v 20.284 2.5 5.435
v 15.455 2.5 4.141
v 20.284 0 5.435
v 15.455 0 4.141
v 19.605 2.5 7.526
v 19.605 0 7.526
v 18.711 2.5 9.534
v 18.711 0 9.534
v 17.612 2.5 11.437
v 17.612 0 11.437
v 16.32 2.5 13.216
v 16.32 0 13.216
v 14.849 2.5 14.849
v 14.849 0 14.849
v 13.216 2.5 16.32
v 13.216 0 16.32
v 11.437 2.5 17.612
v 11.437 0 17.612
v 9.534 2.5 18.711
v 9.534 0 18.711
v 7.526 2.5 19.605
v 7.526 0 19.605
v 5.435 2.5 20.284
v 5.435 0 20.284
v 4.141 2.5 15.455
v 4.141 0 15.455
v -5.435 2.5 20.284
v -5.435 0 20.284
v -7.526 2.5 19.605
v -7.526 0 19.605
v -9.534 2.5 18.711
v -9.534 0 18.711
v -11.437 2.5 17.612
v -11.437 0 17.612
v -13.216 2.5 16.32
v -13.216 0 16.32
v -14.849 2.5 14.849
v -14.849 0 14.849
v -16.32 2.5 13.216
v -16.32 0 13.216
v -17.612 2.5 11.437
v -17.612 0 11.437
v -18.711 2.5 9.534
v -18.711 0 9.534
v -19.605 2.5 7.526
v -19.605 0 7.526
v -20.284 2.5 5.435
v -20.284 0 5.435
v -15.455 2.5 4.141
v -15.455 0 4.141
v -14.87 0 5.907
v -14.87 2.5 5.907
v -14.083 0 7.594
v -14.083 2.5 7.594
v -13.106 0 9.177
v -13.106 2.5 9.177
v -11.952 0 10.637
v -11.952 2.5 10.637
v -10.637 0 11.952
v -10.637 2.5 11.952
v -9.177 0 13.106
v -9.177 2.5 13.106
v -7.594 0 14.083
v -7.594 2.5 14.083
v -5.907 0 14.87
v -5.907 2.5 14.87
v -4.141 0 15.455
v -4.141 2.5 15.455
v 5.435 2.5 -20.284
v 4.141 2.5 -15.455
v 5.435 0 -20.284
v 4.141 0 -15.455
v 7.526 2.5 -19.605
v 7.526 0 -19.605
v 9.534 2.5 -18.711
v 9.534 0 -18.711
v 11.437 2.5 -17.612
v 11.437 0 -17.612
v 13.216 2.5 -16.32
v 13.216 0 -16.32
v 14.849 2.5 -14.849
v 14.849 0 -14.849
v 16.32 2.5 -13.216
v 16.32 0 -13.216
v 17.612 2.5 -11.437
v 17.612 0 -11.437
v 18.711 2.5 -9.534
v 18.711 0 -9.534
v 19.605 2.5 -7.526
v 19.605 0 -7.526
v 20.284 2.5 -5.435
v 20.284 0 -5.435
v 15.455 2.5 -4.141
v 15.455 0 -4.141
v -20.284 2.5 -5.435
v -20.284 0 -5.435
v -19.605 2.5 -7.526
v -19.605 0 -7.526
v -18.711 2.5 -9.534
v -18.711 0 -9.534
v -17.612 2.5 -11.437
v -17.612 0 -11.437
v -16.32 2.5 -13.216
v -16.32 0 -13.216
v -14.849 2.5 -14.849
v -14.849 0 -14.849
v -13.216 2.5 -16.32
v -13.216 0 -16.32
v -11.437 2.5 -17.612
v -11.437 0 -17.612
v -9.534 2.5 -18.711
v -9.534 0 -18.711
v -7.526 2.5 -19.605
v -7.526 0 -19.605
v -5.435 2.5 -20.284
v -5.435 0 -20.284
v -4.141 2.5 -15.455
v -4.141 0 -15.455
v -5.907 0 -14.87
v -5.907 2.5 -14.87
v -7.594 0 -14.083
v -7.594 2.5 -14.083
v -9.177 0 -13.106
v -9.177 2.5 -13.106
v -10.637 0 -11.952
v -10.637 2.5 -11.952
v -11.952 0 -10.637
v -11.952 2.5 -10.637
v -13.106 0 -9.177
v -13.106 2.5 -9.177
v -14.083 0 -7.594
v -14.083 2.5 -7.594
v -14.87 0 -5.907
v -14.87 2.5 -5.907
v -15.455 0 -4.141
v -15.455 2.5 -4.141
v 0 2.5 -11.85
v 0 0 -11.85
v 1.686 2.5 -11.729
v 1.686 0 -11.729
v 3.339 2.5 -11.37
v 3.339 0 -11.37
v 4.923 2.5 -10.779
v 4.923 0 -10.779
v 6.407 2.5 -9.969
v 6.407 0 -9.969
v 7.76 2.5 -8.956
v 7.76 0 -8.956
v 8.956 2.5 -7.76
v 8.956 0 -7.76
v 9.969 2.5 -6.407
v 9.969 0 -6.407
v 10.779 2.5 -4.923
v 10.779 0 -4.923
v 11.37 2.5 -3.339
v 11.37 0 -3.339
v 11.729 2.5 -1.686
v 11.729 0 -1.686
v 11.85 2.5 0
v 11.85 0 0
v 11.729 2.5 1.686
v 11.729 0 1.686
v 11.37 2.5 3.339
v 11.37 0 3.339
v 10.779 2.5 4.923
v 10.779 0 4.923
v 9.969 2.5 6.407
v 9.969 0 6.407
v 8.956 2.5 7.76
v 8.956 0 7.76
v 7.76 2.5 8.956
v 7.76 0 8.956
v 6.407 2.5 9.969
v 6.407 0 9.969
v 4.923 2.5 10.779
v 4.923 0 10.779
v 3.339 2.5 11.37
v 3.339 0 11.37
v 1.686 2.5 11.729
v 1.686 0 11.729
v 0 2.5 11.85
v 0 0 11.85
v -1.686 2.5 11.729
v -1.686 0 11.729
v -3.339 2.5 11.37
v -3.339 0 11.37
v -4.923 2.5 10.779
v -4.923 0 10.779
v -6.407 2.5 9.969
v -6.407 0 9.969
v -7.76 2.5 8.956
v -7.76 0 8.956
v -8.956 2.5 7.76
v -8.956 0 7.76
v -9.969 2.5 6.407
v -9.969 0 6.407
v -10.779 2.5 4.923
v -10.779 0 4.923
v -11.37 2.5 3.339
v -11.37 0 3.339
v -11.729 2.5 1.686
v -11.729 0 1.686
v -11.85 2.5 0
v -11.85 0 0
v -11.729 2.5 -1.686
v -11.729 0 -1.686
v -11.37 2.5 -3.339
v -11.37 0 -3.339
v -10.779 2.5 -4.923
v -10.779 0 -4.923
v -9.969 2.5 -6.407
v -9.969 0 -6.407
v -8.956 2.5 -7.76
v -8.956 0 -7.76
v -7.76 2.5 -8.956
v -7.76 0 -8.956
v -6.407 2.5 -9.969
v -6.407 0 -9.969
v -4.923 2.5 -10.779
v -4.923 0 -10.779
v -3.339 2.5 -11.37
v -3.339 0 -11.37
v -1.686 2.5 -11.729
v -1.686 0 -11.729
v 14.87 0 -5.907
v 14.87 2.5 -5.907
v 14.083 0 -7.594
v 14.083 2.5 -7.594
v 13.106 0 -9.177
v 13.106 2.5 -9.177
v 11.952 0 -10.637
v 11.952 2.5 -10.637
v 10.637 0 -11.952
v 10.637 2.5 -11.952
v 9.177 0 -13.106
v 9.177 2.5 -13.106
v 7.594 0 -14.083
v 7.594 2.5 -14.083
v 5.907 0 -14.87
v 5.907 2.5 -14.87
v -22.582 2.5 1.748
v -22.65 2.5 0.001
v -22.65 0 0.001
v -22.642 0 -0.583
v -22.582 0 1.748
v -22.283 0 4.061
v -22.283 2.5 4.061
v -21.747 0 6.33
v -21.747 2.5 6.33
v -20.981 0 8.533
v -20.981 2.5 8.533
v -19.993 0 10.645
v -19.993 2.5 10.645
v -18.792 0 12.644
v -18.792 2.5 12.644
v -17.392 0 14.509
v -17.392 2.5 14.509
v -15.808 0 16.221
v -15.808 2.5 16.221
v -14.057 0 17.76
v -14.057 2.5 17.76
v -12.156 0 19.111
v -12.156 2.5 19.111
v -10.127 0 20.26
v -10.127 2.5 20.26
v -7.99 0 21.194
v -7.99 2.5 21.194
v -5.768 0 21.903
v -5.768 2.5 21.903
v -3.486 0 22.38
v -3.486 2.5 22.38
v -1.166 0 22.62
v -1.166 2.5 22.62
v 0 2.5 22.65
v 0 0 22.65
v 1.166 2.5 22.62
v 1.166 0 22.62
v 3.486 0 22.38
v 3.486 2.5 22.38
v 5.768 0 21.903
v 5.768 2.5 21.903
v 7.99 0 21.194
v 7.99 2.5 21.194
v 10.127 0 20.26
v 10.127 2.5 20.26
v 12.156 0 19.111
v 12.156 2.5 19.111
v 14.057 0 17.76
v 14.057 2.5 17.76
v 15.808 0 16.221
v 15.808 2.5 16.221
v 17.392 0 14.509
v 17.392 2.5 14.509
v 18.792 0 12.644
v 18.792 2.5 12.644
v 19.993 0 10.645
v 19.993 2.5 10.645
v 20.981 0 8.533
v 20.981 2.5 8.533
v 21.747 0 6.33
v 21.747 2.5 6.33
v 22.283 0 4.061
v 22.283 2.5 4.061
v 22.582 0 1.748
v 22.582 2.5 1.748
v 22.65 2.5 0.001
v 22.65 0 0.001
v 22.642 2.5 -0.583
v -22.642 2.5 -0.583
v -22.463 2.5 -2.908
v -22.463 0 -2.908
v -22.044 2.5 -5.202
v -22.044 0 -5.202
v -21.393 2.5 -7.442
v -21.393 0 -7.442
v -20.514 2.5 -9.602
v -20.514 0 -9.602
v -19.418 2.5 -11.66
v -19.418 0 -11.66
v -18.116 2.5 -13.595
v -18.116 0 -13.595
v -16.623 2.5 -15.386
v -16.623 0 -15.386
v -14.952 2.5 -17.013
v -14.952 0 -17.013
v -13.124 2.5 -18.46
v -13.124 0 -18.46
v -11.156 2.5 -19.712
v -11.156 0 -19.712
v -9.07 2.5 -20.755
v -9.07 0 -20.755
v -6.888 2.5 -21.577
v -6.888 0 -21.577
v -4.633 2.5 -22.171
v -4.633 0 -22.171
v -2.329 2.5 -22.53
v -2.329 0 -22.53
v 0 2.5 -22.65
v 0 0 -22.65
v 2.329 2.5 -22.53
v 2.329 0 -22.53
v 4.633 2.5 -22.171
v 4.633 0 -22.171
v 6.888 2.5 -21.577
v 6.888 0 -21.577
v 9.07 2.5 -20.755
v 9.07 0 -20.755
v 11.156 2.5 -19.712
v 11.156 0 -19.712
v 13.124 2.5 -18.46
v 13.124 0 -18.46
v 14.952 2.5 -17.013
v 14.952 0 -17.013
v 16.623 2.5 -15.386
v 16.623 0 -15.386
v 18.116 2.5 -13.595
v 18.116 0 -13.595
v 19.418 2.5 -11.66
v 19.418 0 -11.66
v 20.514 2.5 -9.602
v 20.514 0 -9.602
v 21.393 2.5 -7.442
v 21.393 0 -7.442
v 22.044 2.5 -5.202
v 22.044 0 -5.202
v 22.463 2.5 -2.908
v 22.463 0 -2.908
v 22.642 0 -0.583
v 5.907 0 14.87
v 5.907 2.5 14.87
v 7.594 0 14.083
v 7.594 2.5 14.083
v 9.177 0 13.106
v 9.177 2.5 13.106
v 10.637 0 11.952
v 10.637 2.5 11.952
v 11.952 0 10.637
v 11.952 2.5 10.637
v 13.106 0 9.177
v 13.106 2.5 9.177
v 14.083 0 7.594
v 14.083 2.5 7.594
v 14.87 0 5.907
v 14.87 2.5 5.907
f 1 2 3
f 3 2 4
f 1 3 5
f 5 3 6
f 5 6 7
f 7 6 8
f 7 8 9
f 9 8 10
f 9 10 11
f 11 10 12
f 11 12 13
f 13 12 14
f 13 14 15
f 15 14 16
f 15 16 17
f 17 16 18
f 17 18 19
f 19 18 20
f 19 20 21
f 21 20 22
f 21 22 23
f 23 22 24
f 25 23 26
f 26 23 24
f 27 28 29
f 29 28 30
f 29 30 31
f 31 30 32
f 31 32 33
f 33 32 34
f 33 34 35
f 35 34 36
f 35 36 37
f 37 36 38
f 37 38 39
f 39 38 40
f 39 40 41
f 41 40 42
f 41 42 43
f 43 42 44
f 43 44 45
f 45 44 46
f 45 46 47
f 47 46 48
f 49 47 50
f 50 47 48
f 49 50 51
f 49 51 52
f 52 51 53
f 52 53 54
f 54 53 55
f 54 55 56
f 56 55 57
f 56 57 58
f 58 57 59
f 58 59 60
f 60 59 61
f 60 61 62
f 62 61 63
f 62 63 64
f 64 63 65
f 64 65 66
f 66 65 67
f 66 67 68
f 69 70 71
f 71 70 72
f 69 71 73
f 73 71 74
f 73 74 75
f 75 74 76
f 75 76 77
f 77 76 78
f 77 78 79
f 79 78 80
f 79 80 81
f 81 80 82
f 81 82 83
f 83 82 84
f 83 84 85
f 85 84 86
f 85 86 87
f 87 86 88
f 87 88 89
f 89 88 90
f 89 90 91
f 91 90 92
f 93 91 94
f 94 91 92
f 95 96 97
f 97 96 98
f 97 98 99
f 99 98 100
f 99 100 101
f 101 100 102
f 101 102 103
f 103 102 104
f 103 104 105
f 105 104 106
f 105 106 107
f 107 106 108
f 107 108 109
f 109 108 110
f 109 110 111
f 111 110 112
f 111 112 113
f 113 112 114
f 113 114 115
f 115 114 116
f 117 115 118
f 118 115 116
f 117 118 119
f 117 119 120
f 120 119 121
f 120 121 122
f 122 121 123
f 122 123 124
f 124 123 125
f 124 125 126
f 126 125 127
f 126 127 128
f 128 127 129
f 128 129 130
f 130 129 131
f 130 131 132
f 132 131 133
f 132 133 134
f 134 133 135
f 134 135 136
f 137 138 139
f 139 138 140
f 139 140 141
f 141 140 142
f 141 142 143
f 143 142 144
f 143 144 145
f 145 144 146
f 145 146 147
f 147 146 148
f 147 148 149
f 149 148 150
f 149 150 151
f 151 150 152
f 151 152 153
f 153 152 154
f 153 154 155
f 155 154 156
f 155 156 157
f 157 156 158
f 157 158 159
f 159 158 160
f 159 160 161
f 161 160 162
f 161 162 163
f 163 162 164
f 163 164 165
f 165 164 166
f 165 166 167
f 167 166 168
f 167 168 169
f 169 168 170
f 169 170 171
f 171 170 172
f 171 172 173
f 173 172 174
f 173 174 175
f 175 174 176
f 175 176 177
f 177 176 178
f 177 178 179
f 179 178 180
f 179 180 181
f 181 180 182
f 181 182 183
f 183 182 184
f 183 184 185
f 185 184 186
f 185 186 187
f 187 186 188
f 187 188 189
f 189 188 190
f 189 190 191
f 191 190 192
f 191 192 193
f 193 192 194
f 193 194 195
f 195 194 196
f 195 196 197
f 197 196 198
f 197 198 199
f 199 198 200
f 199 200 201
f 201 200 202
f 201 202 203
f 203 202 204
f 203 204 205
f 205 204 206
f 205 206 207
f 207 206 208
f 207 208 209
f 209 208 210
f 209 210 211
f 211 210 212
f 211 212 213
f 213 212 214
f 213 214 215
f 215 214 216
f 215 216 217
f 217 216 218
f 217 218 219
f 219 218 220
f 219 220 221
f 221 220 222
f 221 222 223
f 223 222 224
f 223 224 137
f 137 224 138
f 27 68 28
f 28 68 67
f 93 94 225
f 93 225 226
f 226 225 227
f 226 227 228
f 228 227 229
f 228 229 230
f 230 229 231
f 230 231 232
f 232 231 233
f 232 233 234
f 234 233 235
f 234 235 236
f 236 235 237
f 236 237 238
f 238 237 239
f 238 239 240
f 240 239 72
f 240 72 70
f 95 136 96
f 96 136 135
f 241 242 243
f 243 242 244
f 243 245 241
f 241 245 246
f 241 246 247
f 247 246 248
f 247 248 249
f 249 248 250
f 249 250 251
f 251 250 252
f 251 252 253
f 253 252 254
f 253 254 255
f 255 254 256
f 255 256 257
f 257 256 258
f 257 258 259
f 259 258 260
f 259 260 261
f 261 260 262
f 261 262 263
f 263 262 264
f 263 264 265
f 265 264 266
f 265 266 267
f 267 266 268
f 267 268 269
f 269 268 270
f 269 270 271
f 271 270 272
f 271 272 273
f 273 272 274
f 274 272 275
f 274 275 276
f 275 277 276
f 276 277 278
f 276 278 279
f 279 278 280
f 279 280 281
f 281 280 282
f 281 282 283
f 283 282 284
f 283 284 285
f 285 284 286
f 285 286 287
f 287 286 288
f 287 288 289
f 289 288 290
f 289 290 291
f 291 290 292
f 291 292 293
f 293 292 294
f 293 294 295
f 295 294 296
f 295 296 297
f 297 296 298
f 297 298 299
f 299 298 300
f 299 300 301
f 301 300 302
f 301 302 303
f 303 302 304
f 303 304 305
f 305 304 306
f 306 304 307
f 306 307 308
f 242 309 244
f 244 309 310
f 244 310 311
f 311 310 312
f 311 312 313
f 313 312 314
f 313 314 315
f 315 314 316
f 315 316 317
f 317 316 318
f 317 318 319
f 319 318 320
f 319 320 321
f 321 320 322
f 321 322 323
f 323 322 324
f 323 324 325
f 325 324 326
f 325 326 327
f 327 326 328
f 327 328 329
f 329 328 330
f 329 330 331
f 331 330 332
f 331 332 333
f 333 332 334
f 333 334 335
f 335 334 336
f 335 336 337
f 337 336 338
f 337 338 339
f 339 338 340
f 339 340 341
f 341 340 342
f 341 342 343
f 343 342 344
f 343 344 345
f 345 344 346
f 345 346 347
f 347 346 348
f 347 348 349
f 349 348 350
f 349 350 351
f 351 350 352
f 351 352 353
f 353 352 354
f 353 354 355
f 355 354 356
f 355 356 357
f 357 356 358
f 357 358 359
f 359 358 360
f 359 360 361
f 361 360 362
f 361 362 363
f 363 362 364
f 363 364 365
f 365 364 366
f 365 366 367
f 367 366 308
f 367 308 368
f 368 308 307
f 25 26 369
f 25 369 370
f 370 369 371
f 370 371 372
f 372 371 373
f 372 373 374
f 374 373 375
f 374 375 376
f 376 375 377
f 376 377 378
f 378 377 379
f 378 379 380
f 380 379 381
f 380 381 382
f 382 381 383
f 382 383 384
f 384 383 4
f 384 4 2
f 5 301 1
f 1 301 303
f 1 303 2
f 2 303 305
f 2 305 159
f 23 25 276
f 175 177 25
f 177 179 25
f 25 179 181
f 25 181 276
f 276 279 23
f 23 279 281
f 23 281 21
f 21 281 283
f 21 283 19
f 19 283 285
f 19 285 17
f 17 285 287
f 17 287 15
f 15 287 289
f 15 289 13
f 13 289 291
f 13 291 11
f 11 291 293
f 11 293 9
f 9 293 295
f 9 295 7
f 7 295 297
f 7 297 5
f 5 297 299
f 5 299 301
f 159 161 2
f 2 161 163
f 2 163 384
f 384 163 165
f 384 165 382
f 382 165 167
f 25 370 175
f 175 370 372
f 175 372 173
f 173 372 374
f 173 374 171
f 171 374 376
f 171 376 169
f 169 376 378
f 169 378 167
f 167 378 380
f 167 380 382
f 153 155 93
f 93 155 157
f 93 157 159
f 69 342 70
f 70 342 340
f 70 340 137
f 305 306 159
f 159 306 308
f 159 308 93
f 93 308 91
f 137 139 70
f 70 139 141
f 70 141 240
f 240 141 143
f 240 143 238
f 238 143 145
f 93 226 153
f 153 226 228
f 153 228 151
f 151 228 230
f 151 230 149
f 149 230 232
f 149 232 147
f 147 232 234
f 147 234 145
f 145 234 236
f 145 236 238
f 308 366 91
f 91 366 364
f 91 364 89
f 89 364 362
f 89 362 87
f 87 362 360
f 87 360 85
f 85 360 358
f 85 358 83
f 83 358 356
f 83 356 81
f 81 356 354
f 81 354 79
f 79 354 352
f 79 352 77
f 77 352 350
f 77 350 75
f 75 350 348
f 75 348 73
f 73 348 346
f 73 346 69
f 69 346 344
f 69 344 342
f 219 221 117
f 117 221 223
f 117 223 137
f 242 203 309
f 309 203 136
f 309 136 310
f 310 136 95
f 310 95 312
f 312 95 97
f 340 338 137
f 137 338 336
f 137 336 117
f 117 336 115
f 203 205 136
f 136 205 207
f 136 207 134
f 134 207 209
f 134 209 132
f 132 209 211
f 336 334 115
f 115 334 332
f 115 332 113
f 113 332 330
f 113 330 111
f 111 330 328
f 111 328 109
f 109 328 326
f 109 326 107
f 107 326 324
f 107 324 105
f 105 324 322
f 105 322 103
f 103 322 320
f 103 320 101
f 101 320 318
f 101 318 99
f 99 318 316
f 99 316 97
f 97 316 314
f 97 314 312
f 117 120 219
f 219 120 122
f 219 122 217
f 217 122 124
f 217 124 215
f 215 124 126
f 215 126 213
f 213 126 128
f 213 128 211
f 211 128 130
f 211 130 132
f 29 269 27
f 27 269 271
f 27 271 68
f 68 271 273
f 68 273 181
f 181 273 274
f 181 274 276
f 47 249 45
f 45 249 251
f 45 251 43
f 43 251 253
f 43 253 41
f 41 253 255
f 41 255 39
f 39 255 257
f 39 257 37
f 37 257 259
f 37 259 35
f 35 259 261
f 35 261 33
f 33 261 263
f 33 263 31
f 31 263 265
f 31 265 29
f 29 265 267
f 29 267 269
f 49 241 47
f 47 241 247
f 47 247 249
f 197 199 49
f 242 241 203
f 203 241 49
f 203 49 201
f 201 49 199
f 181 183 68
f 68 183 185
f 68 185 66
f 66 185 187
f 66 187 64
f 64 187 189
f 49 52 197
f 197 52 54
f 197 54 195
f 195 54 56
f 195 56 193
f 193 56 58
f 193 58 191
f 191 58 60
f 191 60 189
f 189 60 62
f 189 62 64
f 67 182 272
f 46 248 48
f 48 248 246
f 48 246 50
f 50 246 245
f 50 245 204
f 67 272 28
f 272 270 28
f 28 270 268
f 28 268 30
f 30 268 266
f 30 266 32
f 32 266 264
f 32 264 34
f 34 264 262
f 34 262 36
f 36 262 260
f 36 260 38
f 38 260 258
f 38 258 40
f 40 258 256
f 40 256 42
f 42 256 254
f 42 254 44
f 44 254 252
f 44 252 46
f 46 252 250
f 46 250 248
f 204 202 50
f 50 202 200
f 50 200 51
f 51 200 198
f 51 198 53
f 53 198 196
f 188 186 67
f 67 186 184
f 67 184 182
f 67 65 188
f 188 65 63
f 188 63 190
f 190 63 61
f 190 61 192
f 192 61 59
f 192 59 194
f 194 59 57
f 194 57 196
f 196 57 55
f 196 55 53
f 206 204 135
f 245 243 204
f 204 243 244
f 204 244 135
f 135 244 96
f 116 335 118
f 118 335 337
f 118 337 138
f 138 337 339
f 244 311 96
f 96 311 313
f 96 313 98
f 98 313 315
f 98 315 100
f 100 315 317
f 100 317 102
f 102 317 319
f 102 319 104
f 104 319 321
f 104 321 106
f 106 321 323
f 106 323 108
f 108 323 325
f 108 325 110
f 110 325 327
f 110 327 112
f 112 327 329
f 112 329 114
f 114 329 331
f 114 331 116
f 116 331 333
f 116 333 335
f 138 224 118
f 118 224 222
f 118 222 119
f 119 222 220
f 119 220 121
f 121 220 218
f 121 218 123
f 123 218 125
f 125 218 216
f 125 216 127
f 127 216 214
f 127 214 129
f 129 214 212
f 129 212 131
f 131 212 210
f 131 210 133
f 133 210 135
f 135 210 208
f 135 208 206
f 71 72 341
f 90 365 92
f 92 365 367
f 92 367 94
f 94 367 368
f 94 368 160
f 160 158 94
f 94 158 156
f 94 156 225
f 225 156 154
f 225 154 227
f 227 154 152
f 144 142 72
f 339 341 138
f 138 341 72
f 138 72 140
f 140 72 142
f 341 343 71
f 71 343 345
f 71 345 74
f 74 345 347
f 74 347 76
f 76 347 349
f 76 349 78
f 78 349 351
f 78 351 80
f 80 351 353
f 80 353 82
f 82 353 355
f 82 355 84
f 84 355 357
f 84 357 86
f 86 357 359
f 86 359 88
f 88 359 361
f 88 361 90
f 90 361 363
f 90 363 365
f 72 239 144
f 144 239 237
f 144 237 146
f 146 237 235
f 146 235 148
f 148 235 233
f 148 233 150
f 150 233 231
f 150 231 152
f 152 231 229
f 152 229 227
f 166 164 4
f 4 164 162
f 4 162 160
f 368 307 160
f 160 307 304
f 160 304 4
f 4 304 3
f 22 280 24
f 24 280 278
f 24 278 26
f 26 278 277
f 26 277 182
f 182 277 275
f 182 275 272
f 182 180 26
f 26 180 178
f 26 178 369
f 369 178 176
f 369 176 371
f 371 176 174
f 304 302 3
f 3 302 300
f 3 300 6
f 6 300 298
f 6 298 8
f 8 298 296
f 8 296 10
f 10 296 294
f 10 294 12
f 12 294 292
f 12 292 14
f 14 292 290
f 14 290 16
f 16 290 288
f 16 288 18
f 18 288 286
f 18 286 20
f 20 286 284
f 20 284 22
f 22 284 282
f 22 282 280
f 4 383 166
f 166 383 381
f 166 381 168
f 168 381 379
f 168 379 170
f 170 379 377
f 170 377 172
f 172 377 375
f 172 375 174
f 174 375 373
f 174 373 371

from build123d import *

# Parameters (mm, degrees)
BOSS_EXTRUDE2_DEPTH = 2.5


with BuildPart() as part:
    # Sketch1 → Boss-Extrude2 (new body)
    with BuildSketch(Plane(origin=(0, 0, 0), x_dir=(1, 0, 0), z_dir=(0, 1, 0))):
        with BuildLine():
            ThreePointArc((-20.284442352, 5.435199947), (-14.849242405, 14.849242405), (-5.435199947, 20.284442352))
            Line((-5.435199947, 20.284442352), (-5.862251372, 21.878219965))
            ThreePointArc((-5.862251372, 21.878219965), (-16.015968594, 16.015968594), (-21.878219965, 5.862251372))
            Line((-21.878219965, 5.862251372), (-20.284442352, 5.435199947))
        make_face()
        with BuildLine():
            ThreePointArc((-20.284442352, -5.435199947), (-21, 0), (-20.284442352, 5.435199947))
            Line((-20.284442352, 5.435199947), (-21.878219965, 5.862251372))
            ThreePointArc((-21.878219965, 5.862251372), (-22.65, 0), (-21.878219965, -5.862251372))
            Line((-21.878219965, -5.862251372), (-20.284442352, -5.435199947))
        make_face()
        with BuildLine():
            Line((-5.862251372, -21.878219965), (-5.435199947, -20.284442352))
            ThreePointArc((-5.435199947, -20.284442352), (-14.849242405, -14.849242405), (-20.284442352, -5.435199947))
            Line((-20.284442352, -5.435199947), (-21.878219965, -5.862251372))
            ThreePointArc((-21.878219965, -5.862251372), (-16.015968594, -16.015968594), (-5.862251372, -21.878219965))
        make_face()
        with BuildLine():
            ThreePointArc((5.435199947, -20.284442352), (0, -21), (-5.435199947, -20.284442352))
            Line((-5.435199947, -20.284442352), (-5.862251372, -21.878219965))
            ThreePointArc((-5.862251372, -21.878219965), (0, -22.65), (5.862251372, -21.878219965))
            Line((5.862251372, -21.878219965), (5.435199947, -20.284442352))
        make_face()
        with BuildLine():
            Line((21.878219965, -5.862251372), (20.284442352, -5.435199947))
            ThreePointArc((20.284442352, -5.435199947), (14.849242405, -14.849242405), (5.435199947, -20.284442352))
            Line((5.435199947, -20.284442352), (5.862251372, -21.878219965))
            ThreePointArc((5.862251372, -21.878219965), (16.015968594, -16.015968594), (21.878219965, -5.862251372))
        make_face()
        with BuildLine():
            ThreePointArc((21, 0), (20.820342089, -2.741050037), (20.284442352, -5.435199947))
            Line((20.284442352, -5.435199947), (21.878219965, -5.862251372))
            ThreePointArc((21.878219965, -5.862251372), (22.45622611, -2.956418254), (22.65, 0))
            ThreePointArc((22.65, 0), (22.45622611, 2.956418254), (21.878219965, 5.862251372))
            Line((21.878219965, 5.862251372), (20.284442352, 5.435199947))
            ThreePointArc((20.284442352, 5.435199947), (20.820342089, 2.741050037), (21, 0))
        make_face()
        with BuildLine():
            Line((5.862251372, 21.878219965), (5.435199947, 20.284442352))
            ThreePointArc((5.435199947, 20.284442352), (14.849242405, 14.849242405), (20.284442352, 5.435199947))
            Line((20.284442352, 5.435199947), (21.878219965, 5.862251372))
            ThreePointArc((21.878219965, 5.862251372), (16.015968594, 16.015968594), (5.862251372, 21.878219965))
        make_face()
        with BuildLine():
            Line((0, 22.65), (0, 21))
            ThreePointArc((0, 21), (2.741050037, 20.820342089), (5.435199947, 20.284442352))
            Line((5.435199947, 20.284442352), (5.862251372, 21.878219965))
            ThreePointArc((5.862251372, 21.878219965), (2.956418254, 22.45622611), (0, 22.65))
        make_face()
        with BuildLine():
            ThreePointArc((-5.435199947, 20.284442352), (-2.741050037, 20.820342089), (0, 21))
            Line((0, 21), (0, 22.65))
            ThreePointArc((0, 22.65), (-2.956418254, 22.45622611), (-5.862251372, 21.878219965))
            Line((-5.862251372, 21.878219965), (-5.435199947, 20.284442352))
        make_face()
        with BuildLine():
            ThreePointArc((-11.446221042, 3.067005684), (-8.379215357, 8.379215357), (-3.067005684, 11.446221042))
            Line((-3.067005684, 11.446221042), (-4.141104722, 15.454813221))
            ThreePointArc((-4.141104722, 15.454813221), (-11.313708499, 11.313708499), (-15.454813221, 4.141104722))
            Line((-15.454813221, 4.141104722), (-11.446221042, 3.067005684))
        make_face()
        with BuildLine():
            ThreePointArc((-11.446221042, -3.067005684), (-11.85, 0), (-11.446221042, 3.067005684))
            Line((-11.446221042, 3.067005684), (-15.454813221, 4.141104722))
            ThreePointArc((-15.454813221, 4.141104722), (-16, 0), (-15.454813221, -4.141104722))
            Line((-15.454813221, -4.141104722), (-11.446221042, -3.067005684))
        make_face()
        with BuildLine():
            ThreePointArc((3.067005684, -11.446221042), (0, -11.85), (-3.067005684, -11.446221042))
            Line((-3.067005684, -11.446221042), (-4.141104722, -15.454813221))
            ThreePointArc((-4.141104722, -15.454813221), (0, -16), (4.141104722, -15.454813221))
            Line((4.141104722, -15.454813221), (3.067005684, -11.446221042))
        make_face()
        with BuildLine():
            Line((15.454813221, -4.141104722), (11.446221042, -3.067005684))
            ThreePointArc((11.446221042, -3.067005684), (8.379215357, -8.379215357), (3.067005684, -11.446221042))
            Line((3.067005684, -11.446221042), (4.141104722, -15.454813221))
            ThreePointArc((4.141104722, -15.454813221), (11.313708499, -11.313708499), (15.454813221, -4.141104722))
        make_face()
        with BuildLine():
            ThreePointArc((16, 0), (15.863117782, -2.088419076), (15.454813221, -4.141104722))
            Line((15.454813221, -4.141104722), (20.284442352, -5.435199947))
            ThreePointArc((20.284442352, -5.435199947), (20.820342089, -2.741050037), (21, 0))
            ThreePointArc((21, 0), (20.820342089, 2.741050037), (20.284442352, 5.435199947))
            Line((20.284442352, 5.435199947), (15.454813221, 4.141104722))
            ThreePointArc((15.454813221, 4.141104722), (15.863117782, 2.088419076), (16, 0))
        make_face()
        with BuildLine():
            ThreePointArc((11.85, 0), (11.748621607, -1.546735378), (11.446221042, -3.067005684))
            Line((11.446221042, -3.067005684), (15.454813221, -4.141104722))
            ThreePointArc((15.454813221, -4.141104722), (15.863117782, -2.088419076), (16, 0))
            ThreePointArc((16, 0), (15.863117782, 2.088419076), (15.454813221, 4.141104722))
            Line((15.454813221, 4.141104722), (11.446221042, 3.067005684))
            ThreePointArc((11.446221042, 3.067005684), (11.748621607, 1.546735378), (11.85, 0))
        make_face()
        with BuildLine():
            Line((0, 21), (0, 16))
            ThreePointArc((0, 16), (2.088419076, 15.863117782), (4.141104722, 15.454813221))
            Line((4.141104722, 15.454813221), (5.435199947, 20.284442352))
            ThreePointArc((5.435199947, 20.284442352), (2.741050037, 20.820342089), (0, 21))
        make_face()
        with BuildLine():
            ThreePointArc((-3.067005684, 11.446221042), (-1.546735378, 11.748621607), (0, 11.85))
            Line((0, 11.85), (0, 16))
            ThreePointArc((0, 16), (-2.088419076, 15.863117782), (-4.141104722, 15.454813221))
            Line((-4.141104722, 15.454813221), (-3.067005684, 11.446221042))
        make_face()
        with BuildLine():
            Line((0, 16), (0, 11.85))
            ThreePointArc((0, 11.85), (1.546735378, 11.748621607), (3.067005684, 11.446221042))
            Line((3.067005684, 11.446221042), (4.141104722, 15.454813221))
            ThreePointArc((4.141104722, 15.454813221), (2.088419076, 15.863117782), (0, 16))
        make_face()
        with BuildLine():
            Line((-4.141104722, -15.454813221), (-3.067005684, -11.446221042))
            ThreePointArc((-3.067005684, -11.446221042), (-8.379215357, -8.379215357), (-11.446221042, -3.067005684))
            Line((-11.446221042, -3.067005684), (-15.454813221, -4.141104722))
            ThreePointArc((-15.454813221, -4.141104722), (-11.313708499, -11.313708499), (-4.141104722, -15.454813221))
        make_face()
        with BuildLine():
            ThreePointArc((4.141104722, -15.454813221), (0, -16), (-4.141104722, -15.454813221))
            Line((-4.141104722, -15.454813221), (-5.435199947, -20.284442352))
            ThreePointArc((-5.435199947, -20.284442352), (0, -21), (5.435199947, -20.284442352))
            Line((5.435199947, -20.284442352), (4.141104722, -15.454813221))
        make_face()
        with BuildLine():
            ThreePointArc((-4.141104722, 15.454813221), (-2.088419076, 15.863117782), (0, 16))
            Line((0, 16), (0, 21))
            ThreePointArc((0, 21), (-2.741050037, 20.820342089), (-5.435199947, 20.284442352))
            Line((-5.435199947, 20.284442352), (-4.141104722, 15.454813221))
        make_face()
        with BuildLine():
            Line((4.141104722, 15.454813221), (3.067005684, 11.446221042))
            ThreePointArc((3.067005684, 11.446221042), (8.379215357, 8.379215357), (11.446221042, 3.067005684))
            Line((11.446221042, 3.067005684), (15.454813221, 4.141104722))
            ThreePointArc((15.454813221, 4.141104722), (11.313708499, 11.313708499), (4.141104722, 15.454813221))
        make_face()
        with BuildLine():
            ThreePointArc((-15.454813221, -4.141104722), (-16, 0), (-15.454813221, 4.141104722))
            Line((-15.454813221, 4.141104722), (-20.284442352, 5.435199947))
            ThreePointArc((-20.284442352, 5.435199947), (-21, 0), (-20.284442352, -5.435199947))
            Line((-20.284442352, -5.435199947), (-15.454813221, -4.141104722))
        make_face()
    extrude(amount=BOSS_EXTRUDE2_DEPTH)


solid = part.part
